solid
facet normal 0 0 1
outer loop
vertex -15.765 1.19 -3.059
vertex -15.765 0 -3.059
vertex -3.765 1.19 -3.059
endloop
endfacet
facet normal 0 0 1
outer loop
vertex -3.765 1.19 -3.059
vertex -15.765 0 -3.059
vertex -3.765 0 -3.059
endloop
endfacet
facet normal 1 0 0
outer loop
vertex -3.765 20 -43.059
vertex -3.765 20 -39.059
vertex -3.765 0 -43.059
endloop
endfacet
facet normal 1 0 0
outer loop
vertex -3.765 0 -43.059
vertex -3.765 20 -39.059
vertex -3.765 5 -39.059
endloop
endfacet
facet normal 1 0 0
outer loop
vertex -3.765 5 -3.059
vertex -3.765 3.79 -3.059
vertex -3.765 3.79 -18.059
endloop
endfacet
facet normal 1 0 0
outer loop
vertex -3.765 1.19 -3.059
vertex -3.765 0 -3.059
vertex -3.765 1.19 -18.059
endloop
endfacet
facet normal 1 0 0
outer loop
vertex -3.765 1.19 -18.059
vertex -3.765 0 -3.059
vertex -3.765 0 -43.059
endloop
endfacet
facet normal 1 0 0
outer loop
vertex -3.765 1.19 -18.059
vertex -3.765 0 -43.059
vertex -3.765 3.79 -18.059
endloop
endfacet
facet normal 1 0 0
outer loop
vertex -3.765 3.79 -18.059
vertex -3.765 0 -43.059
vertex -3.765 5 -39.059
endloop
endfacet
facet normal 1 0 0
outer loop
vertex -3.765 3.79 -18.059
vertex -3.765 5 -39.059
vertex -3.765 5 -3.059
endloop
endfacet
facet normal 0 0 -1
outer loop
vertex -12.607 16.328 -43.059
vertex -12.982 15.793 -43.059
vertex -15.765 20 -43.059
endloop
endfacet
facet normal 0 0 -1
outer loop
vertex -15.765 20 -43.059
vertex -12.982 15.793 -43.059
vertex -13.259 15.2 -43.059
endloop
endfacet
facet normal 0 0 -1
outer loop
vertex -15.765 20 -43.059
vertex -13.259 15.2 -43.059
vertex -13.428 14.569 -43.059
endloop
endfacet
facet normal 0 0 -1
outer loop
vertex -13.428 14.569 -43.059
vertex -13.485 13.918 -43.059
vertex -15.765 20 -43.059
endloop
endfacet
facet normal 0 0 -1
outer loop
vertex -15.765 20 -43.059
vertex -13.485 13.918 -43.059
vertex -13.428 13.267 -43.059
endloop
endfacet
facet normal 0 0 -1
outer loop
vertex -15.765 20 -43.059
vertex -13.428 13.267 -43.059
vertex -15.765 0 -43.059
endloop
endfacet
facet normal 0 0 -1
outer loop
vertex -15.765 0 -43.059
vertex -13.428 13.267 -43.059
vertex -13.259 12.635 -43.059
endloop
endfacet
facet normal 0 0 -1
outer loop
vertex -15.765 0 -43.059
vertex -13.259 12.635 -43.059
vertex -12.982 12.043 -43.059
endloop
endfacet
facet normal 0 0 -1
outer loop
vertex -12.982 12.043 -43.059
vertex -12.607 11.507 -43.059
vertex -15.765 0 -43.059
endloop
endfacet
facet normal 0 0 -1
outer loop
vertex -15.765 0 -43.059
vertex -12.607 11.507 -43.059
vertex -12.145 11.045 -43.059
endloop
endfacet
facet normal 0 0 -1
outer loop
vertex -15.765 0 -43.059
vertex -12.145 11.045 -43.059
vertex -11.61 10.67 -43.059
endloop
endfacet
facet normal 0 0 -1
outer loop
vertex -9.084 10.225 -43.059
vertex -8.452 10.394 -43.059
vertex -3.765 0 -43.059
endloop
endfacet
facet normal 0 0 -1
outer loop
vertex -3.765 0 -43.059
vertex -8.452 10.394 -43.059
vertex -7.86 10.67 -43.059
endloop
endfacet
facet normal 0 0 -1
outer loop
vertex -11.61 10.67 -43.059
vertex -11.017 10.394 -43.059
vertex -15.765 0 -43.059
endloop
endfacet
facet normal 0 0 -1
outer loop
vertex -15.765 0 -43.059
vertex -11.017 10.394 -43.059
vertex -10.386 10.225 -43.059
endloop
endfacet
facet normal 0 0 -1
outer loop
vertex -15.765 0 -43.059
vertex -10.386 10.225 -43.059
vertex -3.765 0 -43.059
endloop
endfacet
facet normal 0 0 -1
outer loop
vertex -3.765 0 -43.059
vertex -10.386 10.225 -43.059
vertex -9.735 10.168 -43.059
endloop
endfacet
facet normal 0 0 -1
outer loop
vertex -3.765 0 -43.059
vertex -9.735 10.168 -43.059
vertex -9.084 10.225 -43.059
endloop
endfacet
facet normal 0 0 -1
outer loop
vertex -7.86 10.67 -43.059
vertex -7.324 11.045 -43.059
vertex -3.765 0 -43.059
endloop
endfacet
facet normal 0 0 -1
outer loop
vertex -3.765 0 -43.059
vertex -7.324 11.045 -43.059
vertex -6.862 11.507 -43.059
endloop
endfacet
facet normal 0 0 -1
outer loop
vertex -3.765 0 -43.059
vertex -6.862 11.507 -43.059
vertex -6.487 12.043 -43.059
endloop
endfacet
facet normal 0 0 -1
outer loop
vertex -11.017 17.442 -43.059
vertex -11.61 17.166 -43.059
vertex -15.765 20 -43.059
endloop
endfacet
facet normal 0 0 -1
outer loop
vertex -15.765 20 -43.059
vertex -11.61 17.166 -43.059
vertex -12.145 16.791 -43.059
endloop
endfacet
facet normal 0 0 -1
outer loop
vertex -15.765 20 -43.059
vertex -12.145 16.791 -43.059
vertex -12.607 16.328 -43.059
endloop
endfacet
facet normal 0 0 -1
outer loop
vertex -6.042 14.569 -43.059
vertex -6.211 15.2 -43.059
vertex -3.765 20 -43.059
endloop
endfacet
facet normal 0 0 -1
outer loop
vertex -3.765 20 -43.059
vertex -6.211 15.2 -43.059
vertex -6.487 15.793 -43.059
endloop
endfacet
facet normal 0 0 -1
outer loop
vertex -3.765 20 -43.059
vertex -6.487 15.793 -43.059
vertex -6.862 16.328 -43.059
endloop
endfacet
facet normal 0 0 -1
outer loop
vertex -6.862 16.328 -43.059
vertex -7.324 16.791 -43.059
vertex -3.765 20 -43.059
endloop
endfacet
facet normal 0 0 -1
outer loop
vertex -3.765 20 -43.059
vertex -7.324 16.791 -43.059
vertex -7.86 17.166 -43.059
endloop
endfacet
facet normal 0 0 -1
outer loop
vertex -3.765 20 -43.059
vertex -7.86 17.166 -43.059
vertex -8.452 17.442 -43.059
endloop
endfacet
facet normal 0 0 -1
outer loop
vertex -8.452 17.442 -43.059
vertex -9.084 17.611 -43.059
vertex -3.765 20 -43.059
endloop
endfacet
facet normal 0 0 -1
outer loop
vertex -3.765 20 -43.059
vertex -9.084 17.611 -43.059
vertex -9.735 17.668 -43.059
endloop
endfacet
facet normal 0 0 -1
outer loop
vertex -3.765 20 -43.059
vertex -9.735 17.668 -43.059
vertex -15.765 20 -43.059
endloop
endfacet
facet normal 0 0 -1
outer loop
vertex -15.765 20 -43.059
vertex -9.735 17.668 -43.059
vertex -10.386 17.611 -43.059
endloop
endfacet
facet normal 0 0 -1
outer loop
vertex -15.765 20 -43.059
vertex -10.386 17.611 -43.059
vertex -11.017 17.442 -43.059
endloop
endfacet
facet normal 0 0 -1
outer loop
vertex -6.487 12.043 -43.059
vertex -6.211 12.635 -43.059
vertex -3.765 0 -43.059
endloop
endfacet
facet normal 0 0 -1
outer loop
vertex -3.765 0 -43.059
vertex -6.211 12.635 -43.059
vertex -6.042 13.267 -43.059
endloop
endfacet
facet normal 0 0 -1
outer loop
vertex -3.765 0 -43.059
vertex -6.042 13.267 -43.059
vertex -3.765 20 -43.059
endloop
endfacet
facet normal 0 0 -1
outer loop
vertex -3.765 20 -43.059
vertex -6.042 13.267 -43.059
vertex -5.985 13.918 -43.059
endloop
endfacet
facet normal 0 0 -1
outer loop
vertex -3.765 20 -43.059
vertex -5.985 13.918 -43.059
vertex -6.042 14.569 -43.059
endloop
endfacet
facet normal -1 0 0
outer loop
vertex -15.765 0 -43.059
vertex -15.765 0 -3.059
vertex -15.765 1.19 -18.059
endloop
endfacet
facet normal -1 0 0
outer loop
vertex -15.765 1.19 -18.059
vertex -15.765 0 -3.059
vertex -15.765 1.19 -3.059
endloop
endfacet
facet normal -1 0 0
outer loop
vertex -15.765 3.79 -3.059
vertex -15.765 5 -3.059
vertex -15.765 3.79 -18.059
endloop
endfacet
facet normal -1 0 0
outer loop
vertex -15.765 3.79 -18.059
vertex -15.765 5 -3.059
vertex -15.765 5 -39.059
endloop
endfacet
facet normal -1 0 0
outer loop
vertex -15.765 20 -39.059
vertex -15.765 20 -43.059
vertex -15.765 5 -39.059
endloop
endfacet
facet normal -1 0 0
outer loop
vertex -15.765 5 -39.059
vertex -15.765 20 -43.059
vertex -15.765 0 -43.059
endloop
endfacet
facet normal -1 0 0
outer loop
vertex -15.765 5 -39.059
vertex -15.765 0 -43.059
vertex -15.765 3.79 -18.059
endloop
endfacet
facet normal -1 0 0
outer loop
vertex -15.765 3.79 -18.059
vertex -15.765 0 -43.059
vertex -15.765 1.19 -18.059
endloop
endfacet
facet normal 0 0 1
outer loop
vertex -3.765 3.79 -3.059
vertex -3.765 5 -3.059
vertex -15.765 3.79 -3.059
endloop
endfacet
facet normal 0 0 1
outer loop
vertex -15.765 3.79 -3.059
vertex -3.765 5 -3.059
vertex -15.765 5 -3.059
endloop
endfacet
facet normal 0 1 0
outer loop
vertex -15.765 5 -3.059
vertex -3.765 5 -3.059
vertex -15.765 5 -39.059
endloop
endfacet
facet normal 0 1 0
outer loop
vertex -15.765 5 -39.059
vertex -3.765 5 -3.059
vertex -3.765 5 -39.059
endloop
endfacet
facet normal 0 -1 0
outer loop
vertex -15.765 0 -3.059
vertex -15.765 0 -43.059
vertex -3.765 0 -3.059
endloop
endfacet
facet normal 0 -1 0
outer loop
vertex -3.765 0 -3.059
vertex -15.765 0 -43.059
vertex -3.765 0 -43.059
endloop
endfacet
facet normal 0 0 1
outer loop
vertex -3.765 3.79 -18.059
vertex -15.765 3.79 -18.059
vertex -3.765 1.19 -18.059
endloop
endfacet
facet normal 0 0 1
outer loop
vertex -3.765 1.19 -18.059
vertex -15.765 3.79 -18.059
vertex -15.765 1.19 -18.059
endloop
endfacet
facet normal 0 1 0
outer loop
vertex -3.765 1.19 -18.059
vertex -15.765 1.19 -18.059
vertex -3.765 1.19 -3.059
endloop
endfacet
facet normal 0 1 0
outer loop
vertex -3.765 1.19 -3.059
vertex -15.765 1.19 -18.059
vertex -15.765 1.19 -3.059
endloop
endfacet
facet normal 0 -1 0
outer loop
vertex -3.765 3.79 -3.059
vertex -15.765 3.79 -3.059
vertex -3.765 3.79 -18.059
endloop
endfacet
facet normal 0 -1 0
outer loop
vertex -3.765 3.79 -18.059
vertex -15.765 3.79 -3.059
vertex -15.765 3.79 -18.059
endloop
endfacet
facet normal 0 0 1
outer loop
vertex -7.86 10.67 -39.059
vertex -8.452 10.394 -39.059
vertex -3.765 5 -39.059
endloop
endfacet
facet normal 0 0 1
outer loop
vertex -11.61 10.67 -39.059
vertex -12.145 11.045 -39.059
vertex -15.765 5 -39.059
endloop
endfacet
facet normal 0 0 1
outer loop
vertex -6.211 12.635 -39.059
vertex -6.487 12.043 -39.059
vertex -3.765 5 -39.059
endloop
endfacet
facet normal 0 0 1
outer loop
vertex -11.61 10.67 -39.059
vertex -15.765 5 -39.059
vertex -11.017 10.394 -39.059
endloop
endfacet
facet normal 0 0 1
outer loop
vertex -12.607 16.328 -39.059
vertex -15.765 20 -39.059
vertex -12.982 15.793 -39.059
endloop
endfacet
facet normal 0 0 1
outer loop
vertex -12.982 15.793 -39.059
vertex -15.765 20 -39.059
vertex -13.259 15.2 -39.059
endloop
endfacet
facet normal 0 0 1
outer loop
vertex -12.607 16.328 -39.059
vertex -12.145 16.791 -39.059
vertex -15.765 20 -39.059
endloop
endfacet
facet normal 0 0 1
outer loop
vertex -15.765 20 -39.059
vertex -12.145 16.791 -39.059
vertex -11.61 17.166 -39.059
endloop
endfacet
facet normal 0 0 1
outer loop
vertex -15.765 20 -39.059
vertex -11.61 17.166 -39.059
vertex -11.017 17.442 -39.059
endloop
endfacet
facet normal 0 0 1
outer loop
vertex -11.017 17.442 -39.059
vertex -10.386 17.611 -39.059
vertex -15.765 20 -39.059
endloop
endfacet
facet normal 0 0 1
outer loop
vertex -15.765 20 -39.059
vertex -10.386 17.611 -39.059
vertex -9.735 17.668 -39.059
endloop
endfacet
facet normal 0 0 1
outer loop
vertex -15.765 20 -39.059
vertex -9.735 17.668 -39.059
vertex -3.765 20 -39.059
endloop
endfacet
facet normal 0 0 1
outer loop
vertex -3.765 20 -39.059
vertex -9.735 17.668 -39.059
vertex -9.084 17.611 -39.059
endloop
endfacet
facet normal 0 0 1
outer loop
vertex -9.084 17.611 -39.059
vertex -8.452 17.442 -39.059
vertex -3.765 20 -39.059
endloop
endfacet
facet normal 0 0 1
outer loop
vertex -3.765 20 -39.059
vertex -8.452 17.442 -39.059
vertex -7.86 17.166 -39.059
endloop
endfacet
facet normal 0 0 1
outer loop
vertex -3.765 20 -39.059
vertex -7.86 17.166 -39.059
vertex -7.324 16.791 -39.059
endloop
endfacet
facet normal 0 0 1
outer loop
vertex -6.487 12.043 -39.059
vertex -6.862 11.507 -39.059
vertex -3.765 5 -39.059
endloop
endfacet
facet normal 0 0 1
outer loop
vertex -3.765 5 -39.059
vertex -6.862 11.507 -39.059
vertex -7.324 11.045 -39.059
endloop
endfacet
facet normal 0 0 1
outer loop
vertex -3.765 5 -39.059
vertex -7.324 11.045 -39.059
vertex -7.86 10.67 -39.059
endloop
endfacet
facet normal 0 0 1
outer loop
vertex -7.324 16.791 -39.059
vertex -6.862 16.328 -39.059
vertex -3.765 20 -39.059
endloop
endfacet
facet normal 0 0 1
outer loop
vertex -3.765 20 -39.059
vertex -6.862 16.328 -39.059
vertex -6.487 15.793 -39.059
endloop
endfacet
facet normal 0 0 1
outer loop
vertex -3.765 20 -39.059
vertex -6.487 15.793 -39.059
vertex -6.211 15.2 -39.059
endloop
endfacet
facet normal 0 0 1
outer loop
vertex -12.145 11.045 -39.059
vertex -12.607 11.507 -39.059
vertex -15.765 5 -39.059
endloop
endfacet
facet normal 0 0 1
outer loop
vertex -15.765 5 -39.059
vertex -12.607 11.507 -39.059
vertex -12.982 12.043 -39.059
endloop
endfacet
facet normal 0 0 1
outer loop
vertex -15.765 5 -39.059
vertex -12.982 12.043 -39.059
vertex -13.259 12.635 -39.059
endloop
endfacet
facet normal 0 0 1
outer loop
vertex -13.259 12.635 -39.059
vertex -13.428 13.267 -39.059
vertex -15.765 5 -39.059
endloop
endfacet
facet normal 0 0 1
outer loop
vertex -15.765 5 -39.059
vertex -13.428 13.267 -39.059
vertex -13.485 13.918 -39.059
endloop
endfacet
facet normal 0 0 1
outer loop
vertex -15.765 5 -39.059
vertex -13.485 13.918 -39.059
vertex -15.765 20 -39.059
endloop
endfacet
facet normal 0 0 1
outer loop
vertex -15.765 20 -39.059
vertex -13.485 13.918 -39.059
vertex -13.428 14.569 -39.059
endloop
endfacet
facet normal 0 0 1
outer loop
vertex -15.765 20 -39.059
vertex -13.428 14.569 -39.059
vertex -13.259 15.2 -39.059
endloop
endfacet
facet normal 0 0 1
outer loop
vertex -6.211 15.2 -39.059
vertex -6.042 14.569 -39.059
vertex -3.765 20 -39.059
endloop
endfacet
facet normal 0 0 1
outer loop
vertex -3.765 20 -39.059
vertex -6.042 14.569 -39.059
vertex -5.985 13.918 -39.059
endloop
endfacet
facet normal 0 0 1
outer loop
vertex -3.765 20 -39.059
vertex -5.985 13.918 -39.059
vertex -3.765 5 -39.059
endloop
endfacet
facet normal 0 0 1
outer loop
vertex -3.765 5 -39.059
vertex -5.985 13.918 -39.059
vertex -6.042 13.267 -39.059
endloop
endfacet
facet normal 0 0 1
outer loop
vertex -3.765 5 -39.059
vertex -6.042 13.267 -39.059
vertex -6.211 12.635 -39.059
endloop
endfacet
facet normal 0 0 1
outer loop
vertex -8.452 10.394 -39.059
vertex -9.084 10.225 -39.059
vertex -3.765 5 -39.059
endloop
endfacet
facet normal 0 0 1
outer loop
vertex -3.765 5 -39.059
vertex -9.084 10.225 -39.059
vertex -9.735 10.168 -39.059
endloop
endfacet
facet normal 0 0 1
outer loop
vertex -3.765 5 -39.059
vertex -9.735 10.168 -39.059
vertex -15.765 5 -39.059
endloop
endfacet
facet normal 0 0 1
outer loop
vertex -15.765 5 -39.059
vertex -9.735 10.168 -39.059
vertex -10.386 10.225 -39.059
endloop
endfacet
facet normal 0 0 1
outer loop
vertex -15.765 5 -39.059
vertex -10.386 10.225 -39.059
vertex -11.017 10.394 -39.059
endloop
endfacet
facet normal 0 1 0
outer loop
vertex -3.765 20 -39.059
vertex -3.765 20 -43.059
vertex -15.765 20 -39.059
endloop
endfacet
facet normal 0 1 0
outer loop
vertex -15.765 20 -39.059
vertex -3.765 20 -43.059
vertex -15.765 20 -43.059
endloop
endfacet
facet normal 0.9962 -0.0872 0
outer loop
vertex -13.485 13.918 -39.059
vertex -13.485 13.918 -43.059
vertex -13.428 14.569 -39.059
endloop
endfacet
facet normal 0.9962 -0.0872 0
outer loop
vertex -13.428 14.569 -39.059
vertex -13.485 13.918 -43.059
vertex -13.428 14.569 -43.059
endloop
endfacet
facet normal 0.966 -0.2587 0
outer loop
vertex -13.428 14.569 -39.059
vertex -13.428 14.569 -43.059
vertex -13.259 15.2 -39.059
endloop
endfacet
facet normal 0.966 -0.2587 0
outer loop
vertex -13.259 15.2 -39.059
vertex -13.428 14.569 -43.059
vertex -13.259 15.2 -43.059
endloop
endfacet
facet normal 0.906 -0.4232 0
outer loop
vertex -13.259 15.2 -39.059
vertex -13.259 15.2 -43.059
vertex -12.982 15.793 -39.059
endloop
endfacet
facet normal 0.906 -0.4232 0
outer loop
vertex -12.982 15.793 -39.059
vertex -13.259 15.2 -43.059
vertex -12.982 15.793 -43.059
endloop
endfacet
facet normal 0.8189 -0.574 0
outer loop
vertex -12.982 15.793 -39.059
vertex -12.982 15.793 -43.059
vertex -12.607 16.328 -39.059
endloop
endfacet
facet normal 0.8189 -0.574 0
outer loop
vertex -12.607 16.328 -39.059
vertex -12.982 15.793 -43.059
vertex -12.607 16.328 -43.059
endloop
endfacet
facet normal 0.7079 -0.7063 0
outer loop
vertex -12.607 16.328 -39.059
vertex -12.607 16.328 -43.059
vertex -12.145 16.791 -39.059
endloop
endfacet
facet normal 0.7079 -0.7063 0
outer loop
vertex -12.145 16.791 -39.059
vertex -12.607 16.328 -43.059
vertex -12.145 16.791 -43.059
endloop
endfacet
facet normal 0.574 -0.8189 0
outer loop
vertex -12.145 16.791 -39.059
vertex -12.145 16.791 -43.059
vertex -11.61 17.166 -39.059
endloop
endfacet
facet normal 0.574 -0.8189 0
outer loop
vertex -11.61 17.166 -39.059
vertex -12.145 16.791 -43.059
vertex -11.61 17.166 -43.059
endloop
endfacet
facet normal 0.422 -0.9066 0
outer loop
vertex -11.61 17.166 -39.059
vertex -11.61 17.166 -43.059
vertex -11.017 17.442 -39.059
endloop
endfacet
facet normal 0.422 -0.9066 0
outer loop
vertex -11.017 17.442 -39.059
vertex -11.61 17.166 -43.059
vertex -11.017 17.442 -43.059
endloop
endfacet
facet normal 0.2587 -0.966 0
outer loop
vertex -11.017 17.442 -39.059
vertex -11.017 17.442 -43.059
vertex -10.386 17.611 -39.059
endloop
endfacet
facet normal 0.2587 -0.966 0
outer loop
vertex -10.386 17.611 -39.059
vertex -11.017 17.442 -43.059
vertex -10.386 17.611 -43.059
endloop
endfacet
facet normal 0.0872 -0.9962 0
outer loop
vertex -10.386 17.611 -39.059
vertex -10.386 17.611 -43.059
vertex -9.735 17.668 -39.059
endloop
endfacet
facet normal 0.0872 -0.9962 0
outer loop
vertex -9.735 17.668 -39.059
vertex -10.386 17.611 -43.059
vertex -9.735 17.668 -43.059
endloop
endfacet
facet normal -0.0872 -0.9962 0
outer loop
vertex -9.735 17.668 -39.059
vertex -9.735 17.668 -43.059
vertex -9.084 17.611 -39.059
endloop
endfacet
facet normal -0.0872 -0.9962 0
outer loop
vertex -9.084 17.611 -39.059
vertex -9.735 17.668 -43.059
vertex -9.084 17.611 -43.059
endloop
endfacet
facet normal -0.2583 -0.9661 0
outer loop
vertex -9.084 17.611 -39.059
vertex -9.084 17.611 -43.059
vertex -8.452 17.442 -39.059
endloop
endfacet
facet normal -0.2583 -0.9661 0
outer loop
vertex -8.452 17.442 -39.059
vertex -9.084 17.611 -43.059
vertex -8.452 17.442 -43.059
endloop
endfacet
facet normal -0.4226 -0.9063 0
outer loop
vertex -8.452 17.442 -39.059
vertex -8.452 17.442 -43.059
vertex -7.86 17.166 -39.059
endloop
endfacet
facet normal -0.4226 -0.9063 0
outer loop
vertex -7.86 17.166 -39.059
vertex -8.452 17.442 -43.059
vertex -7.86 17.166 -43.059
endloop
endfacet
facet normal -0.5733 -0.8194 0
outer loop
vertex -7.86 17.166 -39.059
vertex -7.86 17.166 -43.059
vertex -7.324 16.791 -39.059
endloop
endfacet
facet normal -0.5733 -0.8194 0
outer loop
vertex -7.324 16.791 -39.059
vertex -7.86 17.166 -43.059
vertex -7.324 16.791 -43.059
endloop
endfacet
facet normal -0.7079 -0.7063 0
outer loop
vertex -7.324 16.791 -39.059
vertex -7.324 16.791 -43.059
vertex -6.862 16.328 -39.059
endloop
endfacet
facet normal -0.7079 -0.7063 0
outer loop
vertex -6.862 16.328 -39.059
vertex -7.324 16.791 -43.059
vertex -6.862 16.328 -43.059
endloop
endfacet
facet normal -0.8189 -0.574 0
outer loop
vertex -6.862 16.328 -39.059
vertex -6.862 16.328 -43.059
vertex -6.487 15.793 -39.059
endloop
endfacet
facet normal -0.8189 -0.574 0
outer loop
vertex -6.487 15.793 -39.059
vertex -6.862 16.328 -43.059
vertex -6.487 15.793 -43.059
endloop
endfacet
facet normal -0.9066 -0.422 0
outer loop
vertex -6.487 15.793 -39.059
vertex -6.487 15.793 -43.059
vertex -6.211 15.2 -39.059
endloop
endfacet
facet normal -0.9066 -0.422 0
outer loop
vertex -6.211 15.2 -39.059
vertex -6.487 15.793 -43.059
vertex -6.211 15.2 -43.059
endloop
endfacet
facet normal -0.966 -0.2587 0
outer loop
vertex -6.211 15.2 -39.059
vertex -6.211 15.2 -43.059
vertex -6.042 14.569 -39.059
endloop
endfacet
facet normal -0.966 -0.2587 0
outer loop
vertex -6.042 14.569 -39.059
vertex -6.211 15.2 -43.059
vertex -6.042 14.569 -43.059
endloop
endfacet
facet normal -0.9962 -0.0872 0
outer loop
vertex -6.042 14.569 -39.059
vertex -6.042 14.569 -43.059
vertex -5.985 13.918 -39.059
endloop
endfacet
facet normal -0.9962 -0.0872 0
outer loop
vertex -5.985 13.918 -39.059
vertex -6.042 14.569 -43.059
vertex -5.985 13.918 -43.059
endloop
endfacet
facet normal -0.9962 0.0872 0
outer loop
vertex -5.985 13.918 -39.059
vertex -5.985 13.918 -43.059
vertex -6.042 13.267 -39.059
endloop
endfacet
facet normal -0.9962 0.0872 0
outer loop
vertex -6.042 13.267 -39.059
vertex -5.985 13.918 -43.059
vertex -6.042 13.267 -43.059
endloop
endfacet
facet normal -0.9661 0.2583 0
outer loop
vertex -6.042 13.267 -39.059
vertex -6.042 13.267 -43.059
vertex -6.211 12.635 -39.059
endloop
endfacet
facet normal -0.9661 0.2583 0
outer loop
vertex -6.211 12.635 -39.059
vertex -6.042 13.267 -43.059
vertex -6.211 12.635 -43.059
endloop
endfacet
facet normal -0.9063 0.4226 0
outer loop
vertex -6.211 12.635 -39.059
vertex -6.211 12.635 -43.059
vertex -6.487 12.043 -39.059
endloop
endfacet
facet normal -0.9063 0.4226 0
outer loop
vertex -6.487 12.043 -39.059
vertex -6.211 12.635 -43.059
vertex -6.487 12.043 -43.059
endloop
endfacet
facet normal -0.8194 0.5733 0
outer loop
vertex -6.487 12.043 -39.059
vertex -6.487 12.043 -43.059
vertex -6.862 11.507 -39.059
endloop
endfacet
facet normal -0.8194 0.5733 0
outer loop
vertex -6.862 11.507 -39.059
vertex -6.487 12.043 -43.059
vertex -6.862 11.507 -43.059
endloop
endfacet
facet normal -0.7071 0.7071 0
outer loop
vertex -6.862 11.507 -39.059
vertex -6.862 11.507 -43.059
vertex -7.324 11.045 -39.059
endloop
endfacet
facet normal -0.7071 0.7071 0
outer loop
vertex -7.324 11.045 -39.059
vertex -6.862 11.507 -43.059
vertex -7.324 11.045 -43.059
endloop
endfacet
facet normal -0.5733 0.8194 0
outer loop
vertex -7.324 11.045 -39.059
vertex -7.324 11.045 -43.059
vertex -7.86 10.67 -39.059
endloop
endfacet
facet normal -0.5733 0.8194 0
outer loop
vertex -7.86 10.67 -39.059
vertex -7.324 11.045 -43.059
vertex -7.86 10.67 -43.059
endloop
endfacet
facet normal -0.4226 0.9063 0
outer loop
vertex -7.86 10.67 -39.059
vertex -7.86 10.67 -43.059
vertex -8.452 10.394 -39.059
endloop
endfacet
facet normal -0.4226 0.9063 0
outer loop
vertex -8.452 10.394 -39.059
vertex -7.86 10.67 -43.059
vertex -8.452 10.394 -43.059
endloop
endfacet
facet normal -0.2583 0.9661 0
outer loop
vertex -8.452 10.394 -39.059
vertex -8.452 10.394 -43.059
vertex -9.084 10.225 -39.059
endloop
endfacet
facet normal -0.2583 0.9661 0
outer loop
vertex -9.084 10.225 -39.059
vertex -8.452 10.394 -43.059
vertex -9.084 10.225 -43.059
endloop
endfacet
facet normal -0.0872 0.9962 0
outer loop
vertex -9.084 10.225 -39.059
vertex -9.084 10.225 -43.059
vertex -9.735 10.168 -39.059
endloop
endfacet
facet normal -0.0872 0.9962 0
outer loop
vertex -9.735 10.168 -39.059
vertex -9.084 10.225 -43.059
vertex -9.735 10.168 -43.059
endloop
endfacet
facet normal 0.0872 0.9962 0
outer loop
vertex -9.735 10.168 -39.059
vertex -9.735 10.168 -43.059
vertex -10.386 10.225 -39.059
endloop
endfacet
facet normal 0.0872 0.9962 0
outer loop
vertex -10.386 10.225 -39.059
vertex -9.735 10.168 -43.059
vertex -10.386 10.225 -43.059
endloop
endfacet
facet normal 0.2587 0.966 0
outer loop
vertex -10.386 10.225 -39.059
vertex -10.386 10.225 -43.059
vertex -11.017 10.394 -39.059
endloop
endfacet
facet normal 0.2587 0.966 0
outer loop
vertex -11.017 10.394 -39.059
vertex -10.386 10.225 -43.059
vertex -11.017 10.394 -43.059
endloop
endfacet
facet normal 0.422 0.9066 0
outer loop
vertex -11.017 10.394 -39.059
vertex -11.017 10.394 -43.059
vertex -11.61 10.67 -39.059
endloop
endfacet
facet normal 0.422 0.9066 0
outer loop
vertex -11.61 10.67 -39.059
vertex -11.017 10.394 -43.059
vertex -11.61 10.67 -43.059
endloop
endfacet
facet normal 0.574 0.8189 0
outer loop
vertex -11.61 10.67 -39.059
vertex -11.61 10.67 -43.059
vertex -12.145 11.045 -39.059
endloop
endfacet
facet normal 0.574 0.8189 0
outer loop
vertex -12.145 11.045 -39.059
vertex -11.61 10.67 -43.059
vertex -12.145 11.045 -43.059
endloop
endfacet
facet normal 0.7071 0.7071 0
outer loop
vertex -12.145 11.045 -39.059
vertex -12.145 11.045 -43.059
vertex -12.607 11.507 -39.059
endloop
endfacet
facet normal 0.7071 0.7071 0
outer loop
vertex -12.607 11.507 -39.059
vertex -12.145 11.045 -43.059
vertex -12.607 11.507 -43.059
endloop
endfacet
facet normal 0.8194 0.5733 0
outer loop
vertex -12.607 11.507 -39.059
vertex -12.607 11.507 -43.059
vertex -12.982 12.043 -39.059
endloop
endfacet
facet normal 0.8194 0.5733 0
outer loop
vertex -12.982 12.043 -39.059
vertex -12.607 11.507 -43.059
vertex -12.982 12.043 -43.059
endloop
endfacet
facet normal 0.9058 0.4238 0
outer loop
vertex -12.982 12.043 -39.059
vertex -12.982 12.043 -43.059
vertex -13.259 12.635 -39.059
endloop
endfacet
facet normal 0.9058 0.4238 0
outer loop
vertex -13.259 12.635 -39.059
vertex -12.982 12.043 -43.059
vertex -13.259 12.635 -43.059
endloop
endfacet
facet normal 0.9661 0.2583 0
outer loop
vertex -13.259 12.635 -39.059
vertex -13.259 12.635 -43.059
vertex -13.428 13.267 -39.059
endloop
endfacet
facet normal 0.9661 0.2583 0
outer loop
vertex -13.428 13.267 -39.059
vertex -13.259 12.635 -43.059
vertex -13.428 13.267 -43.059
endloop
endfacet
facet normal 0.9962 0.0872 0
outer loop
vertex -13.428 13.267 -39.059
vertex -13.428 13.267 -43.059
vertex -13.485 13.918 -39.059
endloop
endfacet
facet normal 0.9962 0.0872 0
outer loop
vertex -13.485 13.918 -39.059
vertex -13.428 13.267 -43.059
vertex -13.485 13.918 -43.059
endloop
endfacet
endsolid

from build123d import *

# Parameters (mm, degrees)
SKETCH2_W           = 12
SKETCH2_H           = 40
BOSS_EXTRUDE1_DEPTH = 5
SKETCH3_W           = 12.004104261
SKETCH3_H           = 2.6
CUT_EXTRUDE1_DEPTH  = 15
SKETCH4_W           = 12
SKETCH4_H           = 4
BOSS_EXTRUDE2_DEPTH = 15
SKETCH5_R           = 3.75
CUT_EXTRUDE2_DEPTH  = 15


with BuildPart() as part:
    # Sketch2 → Boss-Extrude1 (new body)
    with BuildSketch(Plane(origin=(0, 0, 0), x_dir=(1, 0, 0), z_dir=(0, 1, 0))):
        with Locations((-9.764705882, 23.058823529)):
            Rectangle(SKETCH2_W, SKETCH2_H)
    extrude(amount=BOSS_EXTRUDE1_DEPTH)

    # Sketch3 → Cut-Extrude1 (cut)
    with BuildSketch(Plane.XY.offset(-3.058823529)):
        with Locations((-9.766758013, 2.489565118)):
            Rectangle(SKETCH3_W, SKETCH3_H)
    extrude(amount=-CUT_EXTRUDE1_DEPTH, mode=Mode.SUBTRACT)

    # Sketch4 → Boss-Extrude2 (add)
    with BuildSketch(Plane(origin=(0, 5, 0), x_dir=(1, 0, 0), z_dir=(0, 1, 0))):
        with Locations((-9.764705882, 41.058823529)):
            Rectangle(SKETCH4_W, SKETCH4_H)
    extrude(amount=BOSS_EXTRUDE2_DEPTH)

    # Sketch5 → Cut-Extrude2 (cut)
    with BuildSketch(Plane(origin=(0, 0, -43.058823529), x_dir=(-1, 0, 0), z_dir=(0, 0, -1))):
        with Locations((9.734798195, 13.917907096)):
            Circle(SKETCH5_R)
    extrude(amount=-CUT_EXTRUDE2_DEPTH, mode=Mode.SUBTRACT)


solid = part.part
